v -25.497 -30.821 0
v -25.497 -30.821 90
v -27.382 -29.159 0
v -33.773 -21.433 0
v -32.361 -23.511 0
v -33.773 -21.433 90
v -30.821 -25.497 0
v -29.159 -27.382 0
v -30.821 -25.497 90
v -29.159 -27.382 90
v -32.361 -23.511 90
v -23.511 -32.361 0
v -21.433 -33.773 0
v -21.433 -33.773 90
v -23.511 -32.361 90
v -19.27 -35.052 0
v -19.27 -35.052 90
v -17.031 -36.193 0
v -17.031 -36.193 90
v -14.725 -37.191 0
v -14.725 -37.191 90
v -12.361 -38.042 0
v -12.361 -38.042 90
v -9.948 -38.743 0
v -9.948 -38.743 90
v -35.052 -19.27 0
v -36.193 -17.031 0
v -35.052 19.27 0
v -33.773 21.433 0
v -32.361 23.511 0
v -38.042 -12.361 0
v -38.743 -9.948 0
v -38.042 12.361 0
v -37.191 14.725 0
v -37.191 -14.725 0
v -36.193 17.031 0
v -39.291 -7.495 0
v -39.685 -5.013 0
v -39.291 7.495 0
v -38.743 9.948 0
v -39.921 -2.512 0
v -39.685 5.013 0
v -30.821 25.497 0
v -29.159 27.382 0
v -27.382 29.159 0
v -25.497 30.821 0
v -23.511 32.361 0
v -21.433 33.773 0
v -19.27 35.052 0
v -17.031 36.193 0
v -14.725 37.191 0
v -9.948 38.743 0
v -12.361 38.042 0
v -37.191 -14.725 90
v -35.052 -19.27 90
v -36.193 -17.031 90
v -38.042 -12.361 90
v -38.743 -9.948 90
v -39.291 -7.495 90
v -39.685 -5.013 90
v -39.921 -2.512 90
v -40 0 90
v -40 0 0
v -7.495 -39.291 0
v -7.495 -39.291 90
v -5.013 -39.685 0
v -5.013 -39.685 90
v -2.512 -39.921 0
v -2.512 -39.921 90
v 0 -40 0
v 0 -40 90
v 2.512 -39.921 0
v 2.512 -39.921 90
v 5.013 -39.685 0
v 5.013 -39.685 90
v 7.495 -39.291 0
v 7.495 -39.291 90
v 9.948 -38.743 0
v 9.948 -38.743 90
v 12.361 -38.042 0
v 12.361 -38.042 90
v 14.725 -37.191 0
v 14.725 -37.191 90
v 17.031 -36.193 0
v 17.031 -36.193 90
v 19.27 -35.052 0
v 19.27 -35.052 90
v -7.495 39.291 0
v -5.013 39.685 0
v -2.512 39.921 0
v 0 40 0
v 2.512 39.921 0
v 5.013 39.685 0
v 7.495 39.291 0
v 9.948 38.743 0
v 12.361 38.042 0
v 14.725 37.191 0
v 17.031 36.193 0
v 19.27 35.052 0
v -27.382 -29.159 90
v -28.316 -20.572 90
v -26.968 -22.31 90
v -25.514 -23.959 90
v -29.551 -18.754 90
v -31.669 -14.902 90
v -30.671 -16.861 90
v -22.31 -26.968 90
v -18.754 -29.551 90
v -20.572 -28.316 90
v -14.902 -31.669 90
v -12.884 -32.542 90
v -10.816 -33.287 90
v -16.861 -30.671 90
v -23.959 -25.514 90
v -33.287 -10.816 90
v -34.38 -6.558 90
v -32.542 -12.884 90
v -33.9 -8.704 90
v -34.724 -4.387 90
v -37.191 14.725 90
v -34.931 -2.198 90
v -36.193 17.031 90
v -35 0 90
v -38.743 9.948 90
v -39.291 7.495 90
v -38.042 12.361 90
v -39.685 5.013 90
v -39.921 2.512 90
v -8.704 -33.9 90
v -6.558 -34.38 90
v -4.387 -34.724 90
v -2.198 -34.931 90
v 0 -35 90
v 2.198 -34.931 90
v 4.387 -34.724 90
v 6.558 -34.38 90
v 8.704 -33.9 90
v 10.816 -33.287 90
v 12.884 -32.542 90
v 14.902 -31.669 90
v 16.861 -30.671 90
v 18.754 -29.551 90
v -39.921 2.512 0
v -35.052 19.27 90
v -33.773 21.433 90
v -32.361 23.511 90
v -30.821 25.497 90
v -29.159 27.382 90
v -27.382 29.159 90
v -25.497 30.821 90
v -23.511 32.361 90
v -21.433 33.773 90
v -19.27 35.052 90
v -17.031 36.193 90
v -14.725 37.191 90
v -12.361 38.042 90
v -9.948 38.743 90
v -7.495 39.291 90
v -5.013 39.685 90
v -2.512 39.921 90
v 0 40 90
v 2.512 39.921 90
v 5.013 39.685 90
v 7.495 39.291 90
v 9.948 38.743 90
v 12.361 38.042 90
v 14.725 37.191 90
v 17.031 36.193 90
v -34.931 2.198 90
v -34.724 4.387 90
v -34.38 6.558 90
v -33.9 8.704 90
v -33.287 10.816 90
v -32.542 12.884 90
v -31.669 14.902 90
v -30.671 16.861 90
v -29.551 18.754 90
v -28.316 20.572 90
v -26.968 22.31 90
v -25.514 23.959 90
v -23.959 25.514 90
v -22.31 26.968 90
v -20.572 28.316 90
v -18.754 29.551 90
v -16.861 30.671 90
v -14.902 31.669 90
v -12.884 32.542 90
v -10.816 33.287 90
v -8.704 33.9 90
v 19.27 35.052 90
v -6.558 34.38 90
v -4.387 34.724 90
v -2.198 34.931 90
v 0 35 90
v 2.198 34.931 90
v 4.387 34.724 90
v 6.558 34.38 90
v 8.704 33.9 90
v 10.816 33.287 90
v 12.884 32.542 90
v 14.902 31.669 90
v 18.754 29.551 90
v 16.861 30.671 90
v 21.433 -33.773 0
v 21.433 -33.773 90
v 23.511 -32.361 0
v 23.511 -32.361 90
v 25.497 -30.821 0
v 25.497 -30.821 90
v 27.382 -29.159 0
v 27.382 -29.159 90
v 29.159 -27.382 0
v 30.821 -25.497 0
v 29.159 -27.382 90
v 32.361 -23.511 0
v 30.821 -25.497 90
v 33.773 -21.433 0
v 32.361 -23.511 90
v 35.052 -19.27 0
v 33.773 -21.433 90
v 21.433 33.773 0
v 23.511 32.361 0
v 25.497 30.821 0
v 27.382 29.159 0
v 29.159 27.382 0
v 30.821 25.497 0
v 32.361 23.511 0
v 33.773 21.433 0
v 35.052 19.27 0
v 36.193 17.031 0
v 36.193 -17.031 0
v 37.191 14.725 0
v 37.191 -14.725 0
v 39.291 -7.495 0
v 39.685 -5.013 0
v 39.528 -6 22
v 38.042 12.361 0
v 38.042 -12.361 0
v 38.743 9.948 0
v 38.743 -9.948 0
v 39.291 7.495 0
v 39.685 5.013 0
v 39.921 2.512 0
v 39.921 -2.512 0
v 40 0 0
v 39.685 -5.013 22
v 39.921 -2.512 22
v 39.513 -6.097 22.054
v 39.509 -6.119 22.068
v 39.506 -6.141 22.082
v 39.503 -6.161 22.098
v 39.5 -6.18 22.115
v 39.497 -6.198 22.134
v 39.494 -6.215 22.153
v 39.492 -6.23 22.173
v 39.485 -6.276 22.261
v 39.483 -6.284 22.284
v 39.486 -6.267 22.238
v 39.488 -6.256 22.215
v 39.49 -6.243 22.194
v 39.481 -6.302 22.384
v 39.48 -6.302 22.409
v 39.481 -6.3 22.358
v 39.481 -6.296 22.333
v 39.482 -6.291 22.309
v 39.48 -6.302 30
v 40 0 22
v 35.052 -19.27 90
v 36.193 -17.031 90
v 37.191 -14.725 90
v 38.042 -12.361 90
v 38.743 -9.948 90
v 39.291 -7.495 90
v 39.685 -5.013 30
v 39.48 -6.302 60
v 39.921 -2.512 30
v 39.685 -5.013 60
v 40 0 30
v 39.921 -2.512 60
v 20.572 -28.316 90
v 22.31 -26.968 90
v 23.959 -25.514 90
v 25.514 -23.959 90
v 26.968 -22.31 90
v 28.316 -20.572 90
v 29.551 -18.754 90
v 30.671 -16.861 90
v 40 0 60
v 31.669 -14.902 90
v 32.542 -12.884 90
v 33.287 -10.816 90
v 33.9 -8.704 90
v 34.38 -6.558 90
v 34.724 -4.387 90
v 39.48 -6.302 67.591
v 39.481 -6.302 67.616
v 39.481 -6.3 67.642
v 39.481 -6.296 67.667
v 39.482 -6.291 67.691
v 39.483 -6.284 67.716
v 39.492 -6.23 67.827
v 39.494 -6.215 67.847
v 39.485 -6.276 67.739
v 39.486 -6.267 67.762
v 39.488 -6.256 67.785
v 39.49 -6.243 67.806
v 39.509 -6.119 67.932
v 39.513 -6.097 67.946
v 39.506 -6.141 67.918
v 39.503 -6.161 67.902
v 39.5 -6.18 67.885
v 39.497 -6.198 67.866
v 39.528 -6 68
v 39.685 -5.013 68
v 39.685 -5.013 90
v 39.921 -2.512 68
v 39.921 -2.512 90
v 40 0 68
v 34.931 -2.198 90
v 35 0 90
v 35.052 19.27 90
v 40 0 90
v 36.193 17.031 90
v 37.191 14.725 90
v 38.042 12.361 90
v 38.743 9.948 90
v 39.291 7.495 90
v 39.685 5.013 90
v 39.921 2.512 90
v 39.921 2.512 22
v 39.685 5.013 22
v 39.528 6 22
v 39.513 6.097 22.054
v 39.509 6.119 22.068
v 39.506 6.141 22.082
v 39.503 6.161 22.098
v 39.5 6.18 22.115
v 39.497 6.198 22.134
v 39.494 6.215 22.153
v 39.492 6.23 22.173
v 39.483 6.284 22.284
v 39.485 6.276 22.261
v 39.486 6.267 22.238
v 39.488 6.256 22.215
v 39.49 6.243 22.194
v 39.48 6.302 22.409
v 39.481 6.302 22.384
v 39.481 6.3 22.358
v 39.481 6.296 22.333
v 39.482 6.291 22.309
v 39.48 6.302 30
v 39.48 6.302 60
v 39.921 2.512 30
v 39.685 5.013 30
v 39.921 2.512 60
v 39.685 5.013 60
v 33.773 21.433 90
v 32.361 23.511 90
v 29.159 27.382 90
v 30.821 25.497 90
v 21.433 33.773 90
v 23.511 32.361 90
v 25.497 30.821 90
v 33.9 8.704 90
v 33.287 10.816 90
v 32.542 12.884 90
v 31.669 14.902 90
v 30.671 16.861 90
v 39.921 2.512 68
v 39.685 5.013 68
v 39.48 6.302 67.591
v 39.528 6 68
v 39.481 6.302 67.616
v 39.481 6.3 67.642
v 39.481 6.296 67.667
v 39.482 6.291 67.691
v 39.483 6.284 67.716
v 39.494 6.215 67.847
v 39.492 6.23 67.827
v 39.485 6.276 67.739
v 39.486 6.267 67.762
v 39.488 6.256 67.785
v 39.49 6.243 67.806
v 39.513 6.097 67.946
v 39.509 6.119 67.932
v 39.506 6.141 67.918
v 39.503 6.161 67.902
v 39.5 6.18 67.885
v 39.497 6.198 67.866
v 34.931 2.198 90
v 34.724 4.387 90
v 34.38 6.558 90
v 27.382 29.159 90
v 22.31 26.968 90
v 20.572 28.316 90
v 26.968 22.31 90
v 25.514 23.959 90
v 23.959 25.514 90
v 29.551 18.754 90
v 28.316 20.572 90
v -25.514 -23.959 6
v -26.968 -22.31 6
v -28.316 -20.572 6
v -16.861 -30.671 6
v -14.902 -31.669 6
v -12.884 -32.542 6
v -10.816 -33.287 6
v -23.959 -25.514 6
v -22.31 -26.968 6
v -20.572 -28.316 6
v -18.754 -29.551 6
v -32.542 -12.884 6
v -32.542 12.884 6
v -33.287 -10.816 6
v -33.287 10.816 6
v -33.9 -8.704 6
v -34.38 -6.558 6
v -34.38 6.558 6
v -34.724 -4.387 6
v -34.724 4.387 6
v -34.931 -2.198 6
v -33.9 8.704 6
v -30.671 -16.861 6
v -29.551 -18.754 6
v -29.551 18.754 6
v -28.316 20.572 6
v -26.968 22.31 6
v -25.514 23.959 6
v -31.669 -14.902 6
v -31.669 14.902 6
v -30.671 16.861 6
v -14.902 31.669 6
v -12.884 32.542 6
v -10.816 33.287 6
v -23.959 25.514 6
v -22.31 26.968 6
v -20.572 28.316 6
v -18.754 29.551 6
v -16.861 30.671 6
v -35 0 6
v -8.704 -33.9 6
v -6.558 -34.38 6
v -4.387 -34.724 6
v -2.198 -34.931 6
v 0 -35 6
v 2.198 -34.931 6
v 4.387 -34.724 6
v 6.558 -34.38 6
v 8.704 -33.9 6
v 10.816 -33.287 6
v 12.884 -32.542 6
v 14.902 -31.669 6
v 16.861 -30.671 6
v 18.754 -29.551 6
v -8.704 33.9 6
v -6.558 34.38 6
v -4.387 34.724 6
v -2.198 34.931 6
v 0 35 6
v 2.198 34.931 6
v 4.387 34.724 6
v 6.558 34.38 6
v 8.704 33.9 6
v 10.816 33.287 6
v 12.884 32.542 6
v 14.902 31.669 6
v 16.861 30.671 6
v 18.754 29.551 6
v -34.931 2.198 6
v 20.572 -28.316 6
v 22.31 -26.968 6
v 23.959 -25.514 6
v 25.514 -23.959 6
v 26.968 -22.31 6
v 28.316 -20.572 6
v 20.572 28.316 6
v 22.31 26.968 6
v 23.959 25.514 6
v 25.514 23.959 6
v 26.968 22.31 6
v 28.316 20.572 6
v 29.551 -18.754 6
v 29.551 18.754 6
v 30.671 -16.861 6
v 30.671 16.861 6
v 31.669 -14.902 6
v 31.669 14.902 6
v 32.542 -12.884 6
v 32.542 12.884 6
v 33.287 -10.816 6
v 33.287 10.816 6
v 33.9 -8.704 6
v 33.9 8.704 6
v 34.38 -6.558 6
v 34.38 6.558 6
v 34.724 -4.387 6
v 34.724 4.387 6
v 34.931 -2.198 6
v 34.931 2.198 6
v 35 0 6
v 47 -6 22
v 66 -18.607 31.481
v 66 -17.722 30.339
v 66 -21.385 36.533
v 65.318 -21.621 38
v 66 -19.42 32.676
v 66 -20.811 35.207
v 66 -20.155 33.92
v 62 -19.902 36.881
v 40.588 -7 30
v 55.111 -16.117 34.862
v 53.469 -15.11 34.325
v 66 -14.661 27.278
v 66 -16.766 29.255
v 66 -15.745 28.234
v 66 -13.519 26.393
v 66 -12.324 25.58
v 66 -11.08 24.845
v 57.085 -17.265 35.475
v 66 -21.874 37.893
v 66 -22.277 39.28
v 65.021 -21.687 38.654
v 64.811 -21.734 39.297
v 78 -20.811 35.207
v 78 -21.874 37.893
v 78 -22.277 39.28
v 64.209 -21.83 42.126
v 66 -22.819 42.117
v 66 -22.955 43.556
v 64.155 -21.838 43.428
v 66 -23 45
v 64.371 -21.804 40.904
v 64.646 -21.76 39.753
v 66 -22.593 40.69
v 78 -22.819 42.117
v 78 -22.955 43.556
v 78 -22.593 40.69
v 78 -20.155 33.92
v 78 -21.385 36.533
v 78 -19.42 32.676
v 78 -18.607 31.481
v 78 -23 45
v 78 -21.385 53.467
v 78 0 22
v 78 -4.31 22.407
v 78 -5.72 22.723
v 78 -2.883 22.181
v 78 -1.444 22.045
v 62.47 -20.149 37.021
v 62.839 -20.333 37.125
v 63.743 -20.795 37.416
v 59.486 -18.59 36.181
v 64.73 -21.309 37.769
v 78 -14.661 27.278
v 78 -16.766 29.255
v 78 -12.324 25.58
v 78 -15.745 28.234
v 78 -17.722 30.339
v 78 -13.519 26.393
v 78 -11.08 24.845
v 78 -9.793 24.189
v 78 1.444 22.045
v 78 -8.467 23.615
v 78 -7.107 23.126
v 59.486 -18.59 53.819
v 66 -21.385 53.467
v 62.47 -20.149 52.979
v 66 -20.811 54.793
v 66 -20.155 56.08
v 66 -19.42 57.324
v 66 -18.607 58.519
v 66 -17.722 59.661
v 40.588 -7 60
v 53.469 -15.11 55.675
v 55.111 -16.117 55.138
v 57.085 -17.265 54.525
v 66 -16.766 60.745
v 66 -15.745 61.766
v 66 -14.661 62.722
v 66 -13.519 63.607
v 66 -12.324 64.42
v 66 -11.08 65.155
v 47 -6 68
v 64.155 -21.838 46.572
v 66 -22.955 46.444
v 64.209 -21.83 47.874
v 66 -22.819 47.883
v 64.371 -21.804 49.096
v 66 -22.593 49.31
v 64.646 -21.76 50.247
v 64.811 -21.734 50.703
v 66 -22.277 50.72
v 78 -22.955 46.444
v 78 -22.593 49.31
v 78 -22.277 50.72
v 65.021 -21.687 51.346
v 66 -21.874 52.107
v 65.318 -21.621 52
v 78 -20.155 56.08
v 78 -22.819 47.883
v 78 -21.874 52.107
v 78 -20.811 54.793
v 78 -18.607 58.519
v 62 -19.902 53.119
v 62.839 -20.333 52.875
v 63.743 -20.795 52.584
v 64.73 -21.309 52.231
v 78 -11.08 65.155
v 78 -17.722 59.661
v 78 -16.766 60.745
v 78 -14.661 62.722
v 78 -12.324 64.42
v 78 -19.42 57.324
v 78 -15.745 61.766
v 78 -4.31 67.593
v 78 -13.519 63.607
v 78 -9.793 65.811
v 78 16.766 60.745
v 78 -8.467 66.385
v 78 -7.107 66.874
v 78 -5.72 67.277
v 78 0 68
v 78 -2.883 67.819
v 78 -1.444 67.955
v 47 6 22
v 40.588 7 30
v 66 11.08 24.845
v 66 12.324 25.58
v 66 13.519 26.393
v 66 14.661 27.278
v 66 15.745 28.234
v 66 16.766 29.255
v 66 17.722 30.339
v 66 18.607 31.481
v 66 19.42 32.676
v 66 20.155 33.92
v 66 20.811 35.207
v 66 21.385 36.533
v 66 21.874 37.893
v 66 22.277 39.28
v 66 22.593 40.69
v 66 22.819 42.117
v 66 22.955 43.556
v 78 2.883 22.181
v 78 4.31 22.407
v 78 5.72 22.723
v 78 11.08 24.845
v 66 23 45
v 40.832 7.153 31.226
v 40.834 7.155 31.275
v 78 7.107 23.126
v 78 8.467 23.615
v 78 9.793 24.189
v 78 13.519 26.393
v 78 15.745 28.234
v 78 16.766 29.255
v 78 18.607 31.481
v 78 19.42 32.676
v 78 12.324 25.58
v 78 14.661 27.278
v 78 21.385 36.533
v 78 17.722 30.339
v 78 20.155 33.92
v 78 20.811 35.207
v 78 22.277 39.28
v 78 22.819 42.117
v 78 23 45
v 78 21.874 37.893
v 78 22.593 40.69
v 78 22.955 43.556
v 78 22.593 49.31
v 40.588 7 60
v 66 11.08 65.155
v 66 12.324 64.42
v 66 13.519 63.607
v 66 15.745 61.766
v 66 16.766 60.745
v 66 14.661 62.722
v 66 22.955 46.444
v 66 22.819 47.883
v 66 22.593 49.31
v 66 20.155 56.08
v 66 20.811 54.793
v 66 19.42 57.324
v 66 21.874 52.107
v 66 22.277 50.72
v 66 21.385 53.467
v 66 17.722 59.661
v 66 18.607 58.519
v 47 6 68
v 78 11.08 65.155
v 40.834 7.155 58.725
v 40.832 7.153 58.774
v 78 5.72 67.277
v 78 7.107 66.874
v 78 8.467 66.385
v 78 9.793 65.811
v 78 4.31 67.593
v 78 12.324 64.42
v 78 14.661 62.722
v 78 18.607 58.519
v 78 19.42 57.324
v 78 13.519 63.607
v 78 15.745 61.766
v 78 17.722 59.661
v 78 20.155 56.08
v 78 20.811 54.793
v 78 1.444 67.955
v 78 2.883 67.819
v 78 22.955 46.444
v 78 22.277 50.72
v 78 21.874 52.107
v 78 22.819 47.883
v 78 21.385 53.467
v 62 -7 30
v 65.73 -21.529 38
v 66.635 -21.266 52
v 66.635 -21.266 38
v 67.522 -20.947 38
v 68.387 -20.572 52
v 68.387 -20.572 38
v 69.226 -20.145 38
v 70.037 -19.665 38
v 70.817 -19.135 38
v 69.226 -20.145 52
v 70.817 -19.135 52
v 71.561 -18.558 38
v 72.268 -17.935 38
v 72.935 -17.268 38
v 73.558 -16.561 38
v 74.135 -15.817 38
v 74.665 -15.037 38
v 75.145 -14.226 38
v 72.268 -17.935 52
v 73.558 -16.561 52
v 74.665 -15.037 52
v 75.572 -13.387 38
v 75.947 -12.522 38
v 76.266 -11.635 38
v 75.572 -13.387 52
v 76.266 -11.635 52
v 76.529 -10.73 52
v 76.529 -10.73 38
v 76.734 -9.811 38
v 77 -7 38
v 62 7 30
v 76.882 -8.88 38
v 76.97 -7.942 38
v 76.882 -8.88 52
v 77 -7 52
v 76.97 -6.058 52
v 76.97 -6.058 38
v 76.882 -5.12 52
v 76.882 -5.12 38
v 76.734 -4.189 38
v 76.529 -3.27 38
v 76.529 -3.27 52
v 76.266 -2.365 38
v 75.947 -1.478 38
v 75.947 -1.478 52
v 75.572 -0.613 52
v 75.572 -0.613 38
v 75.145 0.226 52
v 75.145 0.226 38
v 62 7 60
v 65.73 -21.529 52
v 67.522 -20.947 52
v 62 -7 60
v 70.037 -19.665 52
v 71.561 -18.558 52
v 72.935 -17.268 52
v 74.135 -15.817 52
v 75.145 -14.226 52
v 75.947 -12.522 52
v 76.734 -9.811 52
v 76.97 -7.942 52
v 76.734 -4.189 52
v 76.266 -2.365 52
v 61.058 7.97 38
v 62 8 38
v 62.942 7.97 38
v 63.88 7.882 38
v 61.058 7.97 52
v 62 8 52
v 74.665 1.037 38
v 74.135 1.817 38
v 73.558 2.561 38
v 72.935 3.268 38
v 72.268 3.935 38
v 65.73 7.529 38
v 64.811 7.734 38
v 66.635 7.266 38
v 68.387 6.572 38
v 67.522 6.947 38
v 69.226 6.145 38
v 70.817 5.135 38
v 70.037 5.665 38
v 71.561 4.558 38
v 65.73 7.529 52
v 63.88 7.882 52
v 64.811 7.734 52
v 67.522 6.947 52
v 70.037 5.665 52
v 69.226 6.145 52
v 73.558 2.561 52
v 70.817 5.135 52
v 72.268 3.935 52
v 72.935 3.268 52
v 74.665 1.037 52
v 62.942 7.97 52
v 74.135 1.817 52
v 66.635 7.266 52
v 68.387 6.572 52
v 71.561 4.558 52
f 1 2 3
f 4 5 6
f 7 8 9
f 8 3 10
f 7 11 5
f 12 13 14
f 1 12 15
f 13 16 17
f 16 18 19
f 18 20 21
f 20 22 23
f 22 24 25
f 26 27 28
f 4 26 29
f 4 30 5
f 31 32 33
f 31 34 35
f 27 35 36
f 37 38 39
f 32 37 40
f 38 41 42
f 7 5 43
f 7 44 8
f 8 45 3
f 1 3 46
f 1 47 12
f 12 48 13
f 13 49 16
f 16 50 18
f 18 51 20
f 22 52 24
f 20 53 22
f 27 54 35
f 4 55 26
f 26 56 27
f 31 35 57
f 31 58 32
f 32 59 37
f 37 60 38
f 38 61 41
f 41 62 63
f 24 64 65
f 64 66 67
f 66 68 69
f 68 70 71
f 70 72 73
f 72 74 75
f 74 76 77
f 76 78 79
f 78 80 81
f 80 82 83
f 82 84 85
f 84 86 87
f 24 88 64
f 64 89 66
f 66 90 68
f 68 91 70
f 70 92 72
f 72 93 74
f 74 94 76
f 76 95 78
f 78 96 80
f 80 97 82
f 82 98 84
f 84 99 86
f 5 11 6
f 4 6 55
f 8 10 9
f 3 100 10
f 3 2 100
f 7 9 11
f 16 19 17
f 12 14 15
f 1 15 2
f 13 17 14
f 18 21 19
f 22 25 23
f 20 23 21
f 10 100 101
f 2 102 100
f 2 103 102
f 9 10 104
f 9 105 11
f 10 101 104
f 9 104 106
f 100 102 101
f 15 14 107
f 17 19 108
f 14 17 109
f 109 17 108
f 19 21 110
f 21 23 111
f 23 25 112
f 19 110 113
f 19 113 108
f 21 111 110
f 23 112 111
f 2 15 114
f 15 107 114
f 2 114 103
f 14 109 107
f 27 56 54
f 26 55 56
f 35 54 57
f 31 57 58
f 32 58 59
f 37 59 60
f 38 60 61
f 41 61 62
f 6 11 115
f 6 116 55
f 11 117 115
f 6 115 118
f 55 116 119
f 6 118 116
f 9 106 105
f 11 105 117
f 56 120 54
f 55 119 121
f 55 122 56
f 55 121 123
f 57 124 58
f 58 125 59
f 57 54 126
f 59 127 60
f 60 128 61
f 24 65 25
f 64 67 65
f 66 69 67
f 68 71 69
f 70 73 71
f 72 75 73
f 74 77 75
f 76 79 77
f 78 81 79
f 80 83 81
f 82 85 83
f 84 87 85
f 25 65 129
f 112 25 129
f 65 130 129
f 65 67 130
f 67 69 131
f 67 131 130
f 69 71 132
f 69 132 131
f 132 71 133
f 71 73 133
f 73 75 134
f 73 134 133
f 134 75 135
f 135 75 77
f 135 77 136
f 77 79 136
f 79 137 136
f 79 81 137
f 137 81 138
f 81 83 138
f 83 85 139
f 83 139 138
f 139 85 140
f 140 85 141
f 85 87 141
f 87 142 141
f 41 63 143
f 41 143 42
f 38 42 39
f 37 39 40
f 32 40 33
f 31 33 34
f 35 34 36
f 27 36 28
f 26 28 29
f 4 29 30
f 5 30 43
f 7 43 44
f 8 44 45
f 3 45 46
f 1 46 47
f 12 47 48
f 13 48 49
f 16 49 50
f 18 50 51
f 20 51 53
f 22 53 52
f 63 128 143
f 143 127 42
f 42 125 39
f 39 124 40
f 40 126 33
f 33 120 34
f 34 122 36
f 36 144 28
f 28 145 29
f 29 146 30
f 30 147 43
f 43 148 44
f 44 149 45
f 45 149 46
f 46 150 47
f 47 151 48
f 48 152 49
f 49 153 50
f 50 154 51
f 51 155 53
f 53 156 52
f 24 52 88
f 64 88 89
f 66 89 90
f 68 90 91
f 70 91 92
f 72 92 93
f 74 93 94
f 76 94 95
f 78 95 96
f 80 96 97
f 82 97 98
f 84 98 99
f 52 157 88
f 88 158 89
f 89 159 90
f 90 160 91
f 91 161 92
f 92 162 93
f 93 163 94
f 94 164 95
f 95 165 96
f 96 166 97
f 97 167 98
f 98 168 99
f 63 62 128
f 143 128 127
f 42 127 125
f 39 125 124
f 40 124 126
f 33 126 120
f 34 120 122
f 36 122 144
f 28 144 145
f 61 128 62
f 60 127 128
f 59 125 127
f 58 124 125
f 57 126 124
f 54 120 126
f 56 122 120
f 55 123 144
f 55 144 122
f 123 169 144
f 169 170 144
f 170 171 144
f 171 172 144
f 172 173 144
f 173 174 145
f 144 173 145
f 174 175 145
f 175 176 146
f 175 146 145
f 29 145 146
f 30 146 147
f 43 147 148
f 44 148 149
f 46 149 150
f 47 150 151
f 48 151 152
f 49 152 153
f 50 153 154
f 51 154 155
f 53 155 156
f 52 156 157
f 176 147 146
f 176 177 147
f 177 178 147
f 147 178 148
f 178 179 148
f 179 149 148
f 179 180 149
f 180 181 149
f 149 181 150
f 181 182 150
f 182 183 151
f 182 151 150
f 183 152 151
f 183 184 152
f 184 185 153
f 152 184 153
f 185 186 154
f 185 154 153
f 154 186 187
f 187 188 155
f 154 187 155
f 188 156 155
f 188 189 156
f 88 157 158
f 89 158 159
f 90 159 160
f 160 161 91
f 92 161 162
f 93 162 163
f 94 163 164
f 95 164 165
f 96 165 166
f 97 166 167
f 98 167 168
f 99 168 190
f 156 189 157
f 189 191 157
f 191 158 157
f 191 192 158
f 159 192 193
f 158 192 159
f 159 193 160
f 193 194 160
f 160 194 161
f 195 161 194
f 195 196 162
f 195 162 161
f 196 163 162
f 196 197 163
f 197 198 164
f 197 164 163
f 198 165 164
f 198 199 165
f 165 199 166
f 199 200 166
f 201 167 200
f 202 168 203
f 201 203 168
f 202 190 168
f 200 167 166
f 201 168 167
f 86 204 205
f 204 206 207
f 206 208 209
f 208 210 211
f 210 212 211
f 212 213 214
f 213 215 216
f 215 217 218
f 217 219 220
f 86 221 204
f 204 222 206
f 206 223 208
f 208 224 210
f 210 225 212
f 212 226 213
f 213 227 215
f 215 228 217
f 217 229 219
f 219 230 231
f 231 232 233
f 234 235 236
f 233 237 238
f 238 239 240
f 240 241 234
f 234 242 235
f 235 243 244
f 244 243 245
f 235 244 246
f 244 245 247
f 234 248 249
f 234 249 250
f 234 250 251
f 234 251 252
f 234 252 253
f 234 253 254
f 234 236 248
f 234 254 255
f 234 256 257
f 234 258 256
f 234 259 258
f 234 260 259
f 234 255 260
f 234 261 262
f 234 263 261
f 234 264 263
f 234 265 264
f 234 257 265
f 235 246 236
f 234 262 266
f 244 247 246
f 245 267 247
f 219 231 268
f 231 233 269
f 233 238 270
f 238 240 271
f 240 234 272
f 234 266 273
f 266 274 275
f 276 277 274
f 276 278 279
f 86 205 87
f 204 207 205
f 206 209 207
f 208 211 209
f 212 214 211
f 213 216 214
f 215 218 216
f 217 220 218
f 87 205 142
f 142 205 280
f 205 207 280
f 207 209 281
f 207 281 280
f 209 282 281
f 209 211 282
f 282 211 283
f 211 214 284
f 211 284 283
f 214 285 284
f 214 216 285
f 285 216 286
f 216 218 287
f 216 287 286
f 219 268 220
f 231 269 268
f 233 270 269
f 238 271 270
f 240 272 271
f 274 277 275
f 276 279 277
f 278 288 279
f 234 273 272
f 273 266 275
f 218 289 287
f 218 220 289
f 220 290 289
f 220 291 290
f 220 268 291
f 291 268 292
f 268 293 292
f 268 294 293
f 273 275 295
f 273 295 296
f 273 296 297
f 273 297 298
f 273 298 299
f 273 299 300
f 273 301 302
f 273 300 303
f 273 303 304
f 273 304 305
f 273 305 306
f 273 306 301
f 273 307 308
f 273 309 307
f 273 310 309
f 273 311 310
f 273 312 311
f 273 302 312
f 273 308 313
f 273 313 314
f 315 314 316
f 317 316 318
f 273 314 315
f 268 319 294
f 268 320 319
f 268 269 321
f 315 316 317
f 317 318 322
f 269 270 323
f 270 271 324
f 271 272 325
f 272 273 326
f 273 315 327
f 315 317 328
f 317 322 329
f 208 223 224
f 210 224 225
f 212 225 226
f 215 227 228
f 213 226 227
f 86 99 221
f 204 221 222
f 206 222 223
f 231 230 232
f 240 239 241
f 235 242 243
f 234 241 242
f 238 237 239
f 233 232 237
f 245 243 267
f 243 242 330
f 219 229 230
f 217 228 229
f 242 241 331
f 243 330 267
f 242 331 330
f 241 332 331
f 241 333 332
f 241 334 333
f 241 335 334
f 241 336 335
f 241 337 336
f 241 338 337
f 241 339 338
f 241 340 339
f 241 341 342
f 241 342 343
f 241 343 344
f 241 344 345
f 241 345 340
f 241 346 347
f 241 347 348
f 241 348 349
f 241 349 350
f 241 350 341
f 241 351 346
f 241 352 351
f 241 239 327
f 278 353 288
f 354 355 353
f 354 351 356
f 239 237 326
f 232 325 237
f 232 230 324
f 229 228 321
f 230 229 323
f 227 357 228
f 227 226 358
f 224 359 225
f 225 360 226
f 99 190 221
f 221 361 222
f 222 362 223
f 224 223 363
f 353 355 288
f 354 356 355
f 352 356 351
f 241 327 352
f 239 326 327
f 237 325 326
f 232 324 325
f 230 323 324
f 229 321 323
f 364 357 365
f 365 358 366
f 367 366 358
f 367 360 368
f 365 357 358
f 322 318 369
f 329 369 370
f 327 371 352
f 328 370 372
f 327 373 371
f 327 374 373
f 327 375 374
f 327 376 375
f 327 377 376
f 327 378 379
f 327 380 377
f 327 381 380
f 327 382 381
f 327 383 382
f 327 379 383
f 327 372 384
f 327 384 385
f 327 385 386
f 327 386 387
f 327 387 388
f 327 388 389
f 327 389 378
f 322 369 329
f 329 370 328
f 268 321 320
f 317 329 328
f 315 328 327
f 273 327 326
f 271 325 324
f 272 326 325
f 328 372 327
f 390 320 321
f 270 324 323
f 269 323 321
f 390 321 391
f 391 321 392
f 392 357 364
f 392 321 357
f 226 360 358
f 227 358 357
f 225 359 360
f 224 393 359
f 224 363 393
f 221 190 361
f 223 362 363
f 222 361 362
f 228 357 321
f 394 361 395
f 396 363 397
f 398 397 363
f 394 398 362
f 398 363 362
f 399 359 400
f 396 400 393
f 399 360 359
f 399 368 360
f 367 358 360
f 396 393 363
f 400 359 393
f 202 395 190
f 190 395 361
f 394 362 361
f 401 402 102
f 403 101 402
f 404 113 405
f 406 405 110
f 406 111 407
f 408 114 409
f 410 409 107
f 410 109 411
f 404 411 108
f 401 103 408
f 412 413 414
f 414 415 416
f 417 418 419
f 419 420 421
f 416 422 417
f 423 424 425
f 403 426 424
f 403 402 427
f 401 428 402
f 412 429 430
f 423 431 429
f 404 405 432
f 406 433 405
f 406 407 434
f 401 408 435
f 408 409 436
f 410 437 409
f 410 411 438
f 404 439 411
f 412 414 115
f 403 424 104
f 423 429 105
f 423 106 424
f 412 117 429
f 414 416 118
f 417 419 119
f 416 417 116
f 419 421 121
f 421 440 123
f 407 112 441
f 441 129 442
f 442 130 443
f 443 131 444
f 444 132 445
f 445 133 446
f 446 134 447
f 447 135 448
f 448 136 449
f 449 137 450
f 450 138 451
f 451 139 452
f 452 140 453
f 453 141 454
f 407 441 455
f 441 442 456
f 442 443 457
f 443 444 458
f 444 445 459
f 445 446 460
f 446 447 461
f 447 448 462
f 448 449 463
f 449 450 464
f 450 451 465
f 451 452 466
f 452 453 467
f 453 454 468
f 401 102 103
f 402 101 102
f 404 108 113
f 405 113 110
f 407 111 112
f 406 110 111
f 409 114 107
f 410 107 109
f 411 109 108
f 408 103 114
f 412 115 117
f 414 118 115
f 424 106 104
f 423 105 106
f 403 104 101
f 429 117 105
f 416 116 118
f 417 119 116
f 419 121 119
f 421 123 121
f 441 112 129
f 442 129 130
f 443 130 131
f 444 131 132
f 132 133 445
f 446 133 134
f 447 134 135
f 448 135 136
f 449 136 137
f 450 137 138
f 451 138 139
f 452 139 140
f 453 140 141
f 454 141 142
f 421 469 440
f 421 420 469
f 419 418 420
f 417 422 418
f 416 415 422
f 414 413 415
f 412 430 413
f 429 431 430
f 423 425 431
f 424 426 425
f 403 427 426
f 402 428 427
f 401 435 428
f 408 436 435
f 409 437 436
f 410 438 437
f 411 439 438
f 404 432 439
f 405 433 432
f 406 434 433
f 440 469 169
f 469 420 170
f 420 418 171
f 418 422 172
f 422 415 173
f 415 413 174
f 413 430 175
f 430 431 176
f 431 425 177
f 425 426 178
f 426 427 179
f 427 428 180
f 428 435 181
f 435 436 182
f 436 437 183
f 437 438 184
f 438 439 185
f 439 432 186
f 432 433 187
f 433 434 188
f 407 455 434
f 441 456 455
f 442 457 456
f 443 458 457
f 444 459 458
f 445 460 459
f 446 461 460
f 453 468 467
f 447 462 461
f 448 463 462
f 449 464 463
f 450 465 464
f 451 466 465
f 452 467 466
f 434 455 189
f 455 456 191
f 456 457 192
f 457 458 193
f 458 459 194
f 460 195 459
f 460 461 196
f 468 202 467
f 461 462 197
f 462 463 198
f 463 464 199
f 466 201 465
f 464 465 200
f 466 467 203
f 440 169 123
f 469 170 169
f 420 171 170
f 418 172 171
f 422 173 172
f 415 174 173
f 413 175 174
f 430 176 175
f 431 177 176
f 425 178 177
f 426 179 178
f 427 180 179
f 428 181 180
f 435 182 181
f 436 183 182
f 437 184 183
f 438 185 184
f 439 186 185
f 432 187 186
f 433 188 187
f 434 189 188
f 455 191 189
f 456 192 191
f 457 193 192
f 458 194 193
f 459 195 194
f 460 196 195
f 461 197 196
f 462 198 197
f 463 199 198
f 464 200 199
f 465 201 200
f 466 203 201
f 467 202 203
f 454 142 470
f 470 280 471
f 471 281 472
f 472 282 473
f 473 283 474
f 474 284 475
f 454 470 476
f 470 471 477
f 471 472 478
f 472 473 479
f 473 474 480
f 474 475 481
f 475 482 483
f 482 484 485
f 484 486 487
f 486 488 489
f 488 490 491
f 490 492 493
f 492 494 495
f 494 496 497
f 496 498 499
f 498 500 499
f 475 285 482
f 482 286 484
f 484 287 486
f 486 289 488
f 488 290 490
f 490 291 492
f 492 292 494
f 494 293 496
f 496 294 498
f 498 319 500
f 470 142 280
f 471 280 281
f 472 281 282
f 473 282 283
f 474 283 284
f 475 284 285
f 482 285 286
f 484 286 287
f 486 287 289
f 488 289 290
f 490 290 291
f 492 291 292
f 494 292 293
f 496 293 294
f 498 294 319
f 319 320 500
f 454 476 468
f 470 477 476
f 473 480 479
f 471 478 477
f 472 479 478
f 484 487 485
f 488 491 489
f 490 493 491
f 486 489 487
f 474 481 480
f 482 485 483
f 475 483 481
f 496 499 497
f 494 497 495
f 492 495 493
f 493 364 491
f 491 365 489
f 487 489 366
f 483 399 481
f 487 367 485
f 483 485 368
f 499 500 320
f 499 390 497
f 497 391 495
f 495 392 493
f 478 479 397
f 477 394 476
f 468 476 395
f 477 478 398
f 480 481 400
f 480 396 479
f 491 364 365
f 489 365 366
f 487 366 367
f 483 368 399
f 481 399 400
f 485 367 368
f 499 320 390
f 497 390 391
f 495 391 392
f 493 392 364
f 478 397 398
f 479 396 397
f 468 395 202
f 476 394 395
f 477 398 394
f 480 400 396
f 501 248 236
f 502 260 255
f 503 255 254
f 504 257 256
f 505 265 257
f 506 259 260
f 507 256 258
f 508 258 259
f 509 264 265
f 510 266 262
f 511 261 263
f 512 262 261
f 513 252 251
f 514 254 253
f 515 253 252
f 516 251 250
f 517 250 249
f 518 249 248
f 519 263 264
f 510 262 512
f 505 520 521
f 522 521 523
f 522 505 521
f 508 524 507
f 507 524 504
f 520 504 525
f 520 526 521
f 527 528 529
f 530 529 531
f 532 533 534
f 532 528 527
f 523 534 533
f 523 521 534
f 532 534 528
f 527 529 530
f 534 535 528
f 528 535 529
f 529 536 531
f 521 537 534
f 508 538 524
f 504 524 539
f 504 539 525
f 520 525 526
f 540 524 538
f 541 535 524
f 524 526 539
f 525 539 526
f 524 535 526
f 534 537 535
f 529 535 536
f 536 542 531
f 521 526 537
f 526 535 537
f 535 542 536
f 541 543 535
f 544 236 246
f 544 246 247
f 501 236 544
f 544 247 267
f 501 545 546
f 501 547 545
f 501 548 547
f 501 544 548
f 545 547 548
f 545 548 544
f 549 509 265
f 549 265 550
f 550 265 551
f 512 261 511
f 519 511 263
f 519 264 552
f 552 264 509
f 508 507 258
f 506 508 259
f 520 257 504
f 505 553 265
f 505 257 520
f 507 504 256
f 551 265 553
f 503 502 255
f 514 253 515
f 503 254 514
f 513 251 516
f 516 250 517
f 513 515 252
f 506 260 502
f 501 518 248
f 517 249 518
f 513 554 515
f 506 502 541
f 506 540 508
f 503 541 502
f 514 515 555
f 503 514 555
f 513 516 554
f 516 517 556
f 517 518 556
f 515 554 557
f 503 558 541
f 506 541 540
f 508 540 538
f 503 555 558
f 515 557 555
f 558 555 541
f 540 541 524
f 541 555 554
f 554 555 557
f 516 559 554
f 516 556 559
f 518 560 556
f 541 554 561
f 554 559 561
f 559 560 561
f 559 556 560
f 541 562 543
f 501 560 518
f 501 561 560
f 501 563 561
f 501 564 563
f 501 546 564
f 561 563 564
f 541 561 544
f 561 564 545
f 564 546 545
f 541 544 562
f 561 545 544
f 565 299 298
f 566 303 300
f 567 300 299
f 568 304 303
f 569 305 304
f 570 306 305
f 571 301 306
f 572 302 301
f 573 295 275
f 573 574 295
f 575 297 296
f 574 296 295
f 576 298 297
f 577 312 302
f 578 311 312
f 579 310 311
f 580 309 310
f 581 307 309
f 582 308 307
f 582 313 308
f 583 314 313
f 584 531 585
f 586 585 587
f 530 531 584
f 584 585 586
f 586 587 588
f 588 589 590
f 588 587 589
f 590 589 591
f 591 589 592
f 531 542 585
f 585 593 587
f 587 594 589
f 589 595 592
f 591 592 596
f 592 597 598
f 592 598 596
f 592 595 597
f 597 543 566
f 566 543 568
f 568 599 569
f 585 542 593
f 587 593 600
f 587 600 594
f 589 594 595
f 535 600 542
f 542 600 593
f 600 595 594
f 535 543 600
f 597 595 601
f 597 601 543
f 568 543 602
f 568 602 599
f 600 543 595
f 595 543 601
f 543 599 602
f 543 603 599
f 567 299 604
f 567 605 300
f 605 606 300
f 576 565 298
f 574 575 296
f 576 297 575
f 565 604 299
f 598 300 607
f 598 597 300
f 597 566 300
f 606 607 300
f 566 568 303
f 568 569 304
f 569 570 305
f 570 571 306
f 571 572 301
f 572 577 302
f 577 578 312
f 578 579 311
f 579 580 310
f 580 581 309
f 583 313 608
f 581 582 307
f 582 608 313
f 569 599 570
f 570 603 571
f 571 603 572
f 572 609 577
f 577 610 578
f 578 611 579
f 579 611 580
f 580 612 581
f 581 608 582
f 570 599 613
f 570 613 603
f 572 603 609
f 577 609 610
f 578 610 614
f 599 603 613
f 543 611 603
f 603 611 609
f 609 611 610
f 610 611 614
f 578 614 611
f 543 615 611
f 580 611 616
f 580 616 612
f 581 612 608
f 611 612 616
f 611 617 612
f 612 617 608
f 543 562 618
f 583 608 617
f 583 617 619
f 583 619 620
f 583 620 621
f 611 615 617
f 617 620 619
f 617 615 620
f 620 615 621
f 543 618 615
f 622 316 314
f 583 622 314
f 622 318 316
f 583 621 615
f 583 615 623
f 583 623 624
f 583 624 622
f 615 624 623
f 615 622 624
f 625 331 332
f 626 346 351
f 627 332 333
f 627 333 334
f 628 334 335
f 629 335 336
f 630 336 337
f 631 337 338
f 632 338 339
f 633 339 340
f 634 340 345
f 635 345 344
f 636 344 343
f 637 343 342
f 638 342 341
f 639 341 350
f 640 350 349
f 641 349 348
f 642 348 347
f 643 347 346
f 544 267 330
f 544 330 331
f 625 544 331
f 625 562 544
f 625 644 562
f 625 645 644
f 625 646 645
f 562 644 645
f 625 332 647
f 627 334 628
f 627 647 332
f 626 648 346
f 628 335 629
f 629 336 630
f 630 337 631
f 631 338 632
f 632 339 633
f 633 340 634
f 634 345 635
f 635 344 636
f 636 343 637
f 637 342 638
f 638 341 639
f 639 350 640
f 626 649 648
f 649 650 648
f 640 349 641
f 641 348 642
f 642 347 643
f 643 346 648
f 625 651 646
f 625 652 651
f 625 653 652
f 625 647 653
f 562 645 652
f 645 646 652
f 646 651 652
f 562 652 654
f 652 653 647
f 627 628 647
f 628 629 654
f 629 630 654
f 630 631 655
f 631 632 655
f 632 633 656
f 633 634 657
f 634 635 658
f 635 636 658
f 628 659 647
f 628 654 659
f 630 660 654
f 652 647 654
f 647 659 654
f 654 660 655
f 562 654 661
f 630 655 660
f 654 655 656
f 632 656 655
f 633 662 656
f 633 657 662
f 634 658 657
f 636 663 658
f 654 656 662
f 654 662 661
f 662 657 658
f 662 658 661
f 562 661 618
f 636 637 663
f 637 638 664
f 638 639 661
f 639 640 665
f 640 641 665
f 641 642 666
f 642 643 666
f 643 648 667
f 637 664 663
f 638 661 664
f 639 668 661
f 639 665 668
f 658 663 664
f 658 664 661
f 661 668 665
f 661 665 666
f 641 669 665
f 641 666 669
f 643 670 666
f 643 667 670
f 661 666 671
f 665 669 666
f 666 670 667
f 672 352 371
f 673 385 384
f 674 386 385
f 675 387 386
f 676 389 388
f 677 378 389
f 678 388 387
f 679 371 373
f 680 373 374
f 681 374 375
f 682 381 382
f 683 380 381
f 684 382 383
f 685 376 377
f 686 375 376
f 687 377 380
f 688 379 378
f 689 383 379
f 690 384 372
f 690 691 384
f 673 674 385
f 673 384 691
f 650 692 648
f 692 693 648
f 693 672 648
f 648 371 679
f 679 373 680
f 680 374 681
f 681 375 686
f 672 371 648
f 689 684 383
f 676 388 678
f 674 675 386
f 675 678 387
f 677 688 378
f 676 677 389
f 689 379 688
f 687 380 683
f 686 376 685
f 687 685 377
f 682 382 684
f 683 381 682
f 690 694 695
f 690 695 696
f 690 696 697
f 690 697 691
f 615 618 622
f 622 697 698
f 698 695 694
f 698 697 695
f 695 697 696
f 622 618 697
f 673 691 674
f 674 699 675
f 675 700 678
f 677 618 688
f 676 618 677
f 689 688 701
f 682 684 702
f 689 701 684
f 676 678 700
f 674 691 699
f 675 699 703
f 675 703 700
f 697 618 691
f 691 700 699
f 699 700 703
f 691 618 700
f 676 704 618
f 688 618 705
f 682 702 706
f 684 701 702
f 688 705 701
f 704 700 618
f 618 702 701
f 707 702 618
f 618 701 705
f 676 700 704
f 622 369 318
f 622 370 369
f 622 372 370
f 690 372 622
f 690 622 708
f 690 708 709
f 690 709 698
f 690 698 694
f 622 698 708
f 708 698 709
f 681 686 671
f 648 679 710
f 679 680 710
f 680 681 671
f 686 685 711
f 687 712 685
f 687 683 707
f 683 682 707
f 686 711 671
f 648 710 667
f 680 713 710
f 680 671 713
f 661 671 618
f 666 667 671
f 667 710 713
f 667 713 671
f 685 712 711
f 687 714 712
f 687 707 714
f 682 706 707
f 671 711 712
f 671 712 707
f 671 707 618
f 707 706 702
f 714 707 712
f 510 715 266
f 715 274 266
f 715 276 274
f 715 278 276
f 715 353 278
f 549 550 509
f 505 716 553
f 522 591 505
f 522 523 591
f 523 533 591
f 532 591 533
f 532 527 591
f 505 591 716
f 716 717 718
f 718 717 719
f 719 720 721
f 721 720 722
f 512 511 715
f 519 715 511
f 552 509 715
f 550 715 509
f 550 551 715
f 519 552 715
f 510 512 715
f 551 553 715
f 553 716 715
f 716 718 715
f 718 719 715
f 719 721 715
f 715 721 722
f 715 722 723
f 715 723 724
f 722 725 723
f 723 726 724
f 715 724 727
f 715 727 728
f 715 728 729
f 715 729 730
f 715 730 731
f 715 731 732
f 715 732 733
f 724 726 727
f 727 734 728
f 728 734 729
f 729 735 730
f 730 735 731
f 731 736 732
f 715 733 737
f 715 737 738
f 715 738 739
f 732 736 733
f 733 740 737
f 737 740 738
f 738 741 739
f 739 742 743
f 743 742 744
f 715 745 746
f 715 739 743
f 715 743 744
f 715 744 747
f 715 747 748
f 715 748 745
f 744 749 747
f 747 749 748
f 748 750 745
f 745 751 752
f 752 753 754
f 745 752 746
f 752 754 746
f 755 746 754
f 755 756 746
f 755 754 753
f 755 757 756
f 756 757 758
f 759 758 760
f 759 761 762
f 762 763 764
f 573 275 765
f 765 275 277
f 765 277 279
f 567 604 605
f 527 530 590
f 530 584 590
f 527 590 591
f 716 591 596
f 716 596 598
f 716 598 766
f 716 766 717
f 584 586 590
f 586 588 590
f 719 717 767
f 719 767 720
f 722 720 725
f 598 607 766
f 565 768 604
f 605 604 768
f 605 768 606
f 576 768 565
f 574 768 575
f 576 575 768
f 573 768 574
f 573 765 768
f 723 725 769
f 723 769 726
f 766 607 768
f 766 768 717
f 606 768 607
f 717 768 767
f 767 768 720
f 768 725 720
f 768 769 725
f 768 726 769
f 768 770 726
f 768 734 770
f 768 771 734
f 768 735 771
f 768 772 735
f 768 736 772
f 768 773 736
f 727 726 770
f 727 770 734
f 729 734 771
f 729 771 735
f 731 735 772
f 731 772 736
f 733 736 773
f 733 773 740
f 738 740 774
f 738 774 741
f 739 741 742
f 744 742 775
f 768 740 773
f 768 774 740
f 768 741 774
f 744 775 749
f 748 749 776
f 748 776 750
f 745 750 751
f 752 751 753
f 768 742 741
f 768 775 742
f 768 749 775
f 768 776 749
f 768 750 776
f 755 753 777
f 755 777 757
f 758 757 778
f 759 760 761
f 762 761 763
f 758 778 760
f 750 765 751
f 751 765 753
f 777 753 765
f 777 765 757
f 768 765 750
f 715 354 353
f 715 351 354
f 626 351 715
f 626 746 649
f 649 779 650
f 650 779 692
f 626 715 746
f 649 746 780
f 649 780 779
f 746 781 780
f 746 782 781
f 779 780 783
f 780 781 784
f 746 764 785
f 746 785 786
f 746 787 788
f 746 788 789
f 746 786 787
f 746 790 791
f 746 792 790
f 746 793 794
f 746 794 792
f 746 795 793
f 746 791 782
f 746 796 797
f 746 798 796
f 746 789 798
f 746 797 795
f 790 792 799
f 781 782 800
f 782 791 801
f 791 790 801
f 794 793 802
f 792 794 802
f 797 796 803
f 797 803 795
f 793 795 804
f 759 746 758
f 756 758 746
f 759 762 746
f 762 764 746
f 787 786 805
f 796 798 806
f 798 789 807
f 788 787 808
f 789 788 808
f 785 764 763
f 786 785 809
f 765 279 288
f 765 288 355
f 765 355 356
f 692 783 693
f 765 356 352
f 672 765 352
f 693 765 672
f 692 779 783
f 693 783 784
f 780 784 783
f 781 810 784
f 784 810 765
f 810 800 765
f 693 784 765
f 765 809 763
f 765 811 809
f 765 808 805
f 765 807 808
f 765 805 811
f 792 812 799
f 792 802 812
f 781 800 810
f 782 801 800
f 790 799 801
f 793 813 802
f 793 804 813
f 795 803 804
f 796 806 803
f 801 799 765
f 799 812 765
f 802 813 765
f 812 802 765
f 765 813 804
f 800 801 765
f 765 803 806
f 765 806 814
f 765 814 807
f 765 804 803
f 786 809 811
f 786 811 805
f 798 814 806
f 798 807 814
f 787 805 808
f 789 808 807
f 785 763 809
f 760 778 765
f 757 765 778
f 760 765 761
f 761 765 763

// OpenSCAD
$fn = 100; // 滑らかな曲線にするための解像度

// --- 本体パラメータ ---
mug_outer_d = 80;
mug_inner_d = 70;
mug_h = 90;
mug_bottom_thickness = 6;

// --- 取手パラメータ ---
handle_inner_h = 30;        // 指を入れる空間の高さ
handle_inner_w = 25;        // 指を入れる空間の幅 (本体からの距離)
handle_thickness = 8;       // 取手の肉厚
handle_y_width = 12;        // 取手の奥行き (Y軸方向の太さ)

// 本体と取手を結合
union() {
    // 1. マグ本体
    difference() {
        // 外側の円筒
        cylinder(h = mug_h, d = mug_outer_d);
        
        // 内側をくり抜くための円筒
        // 底面の厚みを残すために Z 方向にずらす
        translate([0, 0, mug_bottom_thickness])
            cylinder(h = mug_h + 1, d = mug_inner_d); // 確実に貫通させるため少し高くする
    }

    // 2. 取手
    // 取手全体の高さを計算
    handle_outer_h = handle_inner_h + 2 * handle_thickness;
    // 取手をマグカップの高さ方向中央に配置するためのZ座標を計算
    handle_z_pos = (mug_h - handle_outer_h) / 2;

    // 取手を+X軸方向に配置
    // 本体に少しめり込ませて確実に接続する
    translate([mug_outer_d/2 - 1, 0, handle_z_pos]) {
        // difference() を使って、ソリッドのD字形状から内側の穴をくり抜く
        difference() {
            // --- 外側のソリッドD字形状 ---
            // hull() を使い、直線部(cube)と曲線部(cylinder)を滑らかに繋ぐ
            hull() {
                // 本体との接続部 (D字の直線部分)
                translate([0, -handle_y_width/2, 0])
                    cube([handle_thickness, handle_y_width, handle_outer_h]);
                
                // D字のカーブ部分
                // 円筒の中心を、指を入れる空間のさらに奥に配置
                translate([handle_thickness + handle_inner_w, 0, handle_outer_h / 2])
                    rotate([0, 90, 0])
                        cylinder(h = handle_y_width, r = handle_outer_h / 2, center = true);
            }
            
            // --- 内側のくり抜き穴 ---
            // 確実に貫通させるためにX,Y方向に少し大きくする
            translate([-2, -handle_y_width/2 - 1, handle_thickness]) {
                 // くり抜く形状もhullで作成し、内側の角を滑らかにする
                 hull() {
                    // 直線部分の穴
                    cube([handle_inner_w, handle_y_width + 2, handle_inner_h]);
                    
                    // 曲線部分の穴
                    translate([handle_inner_w, 0, handle_inner_h / 2])
                        cylinder(h = handle_y_width + 2, r = handle_inner_h / 2, center=true);
                 }
            }
        }
    }
}
